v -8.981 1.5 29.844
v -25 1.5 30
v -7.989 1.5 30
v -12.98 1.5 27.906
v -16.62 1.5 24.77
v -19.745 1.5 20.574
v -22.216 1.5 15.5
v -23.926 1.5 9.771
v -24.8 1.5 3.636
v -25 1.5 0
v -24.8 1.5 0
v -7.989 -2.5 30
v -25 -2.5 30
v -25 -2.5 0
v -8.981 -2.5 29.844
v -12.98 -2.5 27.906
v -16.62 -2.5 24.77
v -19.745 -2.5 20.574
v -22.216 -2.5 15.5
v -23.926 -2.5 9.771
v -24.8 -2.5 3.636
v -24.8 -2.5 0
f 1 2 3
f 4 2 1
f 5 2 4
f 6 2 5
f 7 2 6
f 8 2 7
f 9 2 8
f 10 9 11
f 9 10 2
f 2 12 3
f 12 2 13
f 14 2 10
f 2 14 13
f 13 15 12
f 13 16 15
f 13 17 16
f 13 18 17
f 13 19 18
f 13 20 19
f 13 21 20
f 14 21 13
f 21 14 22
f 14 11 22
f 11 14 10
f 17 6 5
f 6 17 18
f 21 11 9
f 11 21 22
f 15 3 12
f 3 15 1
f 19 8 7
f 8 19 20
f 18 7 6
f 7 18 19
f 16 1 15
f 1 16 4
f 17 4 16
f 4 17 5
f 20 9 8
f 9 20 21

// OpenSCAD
module supportArch() {
    difference() {
        rotate([0, 90, 90])
            translate([-30, 2, -2.5])
            cube([30, 23, 4]);
        
        rotate([0,90,90])
            translate([-0.5, 4.8, -4])
            resize([0, 40, 0])
            cylinder(8, 30, 30);
    }
}

supportArch();
